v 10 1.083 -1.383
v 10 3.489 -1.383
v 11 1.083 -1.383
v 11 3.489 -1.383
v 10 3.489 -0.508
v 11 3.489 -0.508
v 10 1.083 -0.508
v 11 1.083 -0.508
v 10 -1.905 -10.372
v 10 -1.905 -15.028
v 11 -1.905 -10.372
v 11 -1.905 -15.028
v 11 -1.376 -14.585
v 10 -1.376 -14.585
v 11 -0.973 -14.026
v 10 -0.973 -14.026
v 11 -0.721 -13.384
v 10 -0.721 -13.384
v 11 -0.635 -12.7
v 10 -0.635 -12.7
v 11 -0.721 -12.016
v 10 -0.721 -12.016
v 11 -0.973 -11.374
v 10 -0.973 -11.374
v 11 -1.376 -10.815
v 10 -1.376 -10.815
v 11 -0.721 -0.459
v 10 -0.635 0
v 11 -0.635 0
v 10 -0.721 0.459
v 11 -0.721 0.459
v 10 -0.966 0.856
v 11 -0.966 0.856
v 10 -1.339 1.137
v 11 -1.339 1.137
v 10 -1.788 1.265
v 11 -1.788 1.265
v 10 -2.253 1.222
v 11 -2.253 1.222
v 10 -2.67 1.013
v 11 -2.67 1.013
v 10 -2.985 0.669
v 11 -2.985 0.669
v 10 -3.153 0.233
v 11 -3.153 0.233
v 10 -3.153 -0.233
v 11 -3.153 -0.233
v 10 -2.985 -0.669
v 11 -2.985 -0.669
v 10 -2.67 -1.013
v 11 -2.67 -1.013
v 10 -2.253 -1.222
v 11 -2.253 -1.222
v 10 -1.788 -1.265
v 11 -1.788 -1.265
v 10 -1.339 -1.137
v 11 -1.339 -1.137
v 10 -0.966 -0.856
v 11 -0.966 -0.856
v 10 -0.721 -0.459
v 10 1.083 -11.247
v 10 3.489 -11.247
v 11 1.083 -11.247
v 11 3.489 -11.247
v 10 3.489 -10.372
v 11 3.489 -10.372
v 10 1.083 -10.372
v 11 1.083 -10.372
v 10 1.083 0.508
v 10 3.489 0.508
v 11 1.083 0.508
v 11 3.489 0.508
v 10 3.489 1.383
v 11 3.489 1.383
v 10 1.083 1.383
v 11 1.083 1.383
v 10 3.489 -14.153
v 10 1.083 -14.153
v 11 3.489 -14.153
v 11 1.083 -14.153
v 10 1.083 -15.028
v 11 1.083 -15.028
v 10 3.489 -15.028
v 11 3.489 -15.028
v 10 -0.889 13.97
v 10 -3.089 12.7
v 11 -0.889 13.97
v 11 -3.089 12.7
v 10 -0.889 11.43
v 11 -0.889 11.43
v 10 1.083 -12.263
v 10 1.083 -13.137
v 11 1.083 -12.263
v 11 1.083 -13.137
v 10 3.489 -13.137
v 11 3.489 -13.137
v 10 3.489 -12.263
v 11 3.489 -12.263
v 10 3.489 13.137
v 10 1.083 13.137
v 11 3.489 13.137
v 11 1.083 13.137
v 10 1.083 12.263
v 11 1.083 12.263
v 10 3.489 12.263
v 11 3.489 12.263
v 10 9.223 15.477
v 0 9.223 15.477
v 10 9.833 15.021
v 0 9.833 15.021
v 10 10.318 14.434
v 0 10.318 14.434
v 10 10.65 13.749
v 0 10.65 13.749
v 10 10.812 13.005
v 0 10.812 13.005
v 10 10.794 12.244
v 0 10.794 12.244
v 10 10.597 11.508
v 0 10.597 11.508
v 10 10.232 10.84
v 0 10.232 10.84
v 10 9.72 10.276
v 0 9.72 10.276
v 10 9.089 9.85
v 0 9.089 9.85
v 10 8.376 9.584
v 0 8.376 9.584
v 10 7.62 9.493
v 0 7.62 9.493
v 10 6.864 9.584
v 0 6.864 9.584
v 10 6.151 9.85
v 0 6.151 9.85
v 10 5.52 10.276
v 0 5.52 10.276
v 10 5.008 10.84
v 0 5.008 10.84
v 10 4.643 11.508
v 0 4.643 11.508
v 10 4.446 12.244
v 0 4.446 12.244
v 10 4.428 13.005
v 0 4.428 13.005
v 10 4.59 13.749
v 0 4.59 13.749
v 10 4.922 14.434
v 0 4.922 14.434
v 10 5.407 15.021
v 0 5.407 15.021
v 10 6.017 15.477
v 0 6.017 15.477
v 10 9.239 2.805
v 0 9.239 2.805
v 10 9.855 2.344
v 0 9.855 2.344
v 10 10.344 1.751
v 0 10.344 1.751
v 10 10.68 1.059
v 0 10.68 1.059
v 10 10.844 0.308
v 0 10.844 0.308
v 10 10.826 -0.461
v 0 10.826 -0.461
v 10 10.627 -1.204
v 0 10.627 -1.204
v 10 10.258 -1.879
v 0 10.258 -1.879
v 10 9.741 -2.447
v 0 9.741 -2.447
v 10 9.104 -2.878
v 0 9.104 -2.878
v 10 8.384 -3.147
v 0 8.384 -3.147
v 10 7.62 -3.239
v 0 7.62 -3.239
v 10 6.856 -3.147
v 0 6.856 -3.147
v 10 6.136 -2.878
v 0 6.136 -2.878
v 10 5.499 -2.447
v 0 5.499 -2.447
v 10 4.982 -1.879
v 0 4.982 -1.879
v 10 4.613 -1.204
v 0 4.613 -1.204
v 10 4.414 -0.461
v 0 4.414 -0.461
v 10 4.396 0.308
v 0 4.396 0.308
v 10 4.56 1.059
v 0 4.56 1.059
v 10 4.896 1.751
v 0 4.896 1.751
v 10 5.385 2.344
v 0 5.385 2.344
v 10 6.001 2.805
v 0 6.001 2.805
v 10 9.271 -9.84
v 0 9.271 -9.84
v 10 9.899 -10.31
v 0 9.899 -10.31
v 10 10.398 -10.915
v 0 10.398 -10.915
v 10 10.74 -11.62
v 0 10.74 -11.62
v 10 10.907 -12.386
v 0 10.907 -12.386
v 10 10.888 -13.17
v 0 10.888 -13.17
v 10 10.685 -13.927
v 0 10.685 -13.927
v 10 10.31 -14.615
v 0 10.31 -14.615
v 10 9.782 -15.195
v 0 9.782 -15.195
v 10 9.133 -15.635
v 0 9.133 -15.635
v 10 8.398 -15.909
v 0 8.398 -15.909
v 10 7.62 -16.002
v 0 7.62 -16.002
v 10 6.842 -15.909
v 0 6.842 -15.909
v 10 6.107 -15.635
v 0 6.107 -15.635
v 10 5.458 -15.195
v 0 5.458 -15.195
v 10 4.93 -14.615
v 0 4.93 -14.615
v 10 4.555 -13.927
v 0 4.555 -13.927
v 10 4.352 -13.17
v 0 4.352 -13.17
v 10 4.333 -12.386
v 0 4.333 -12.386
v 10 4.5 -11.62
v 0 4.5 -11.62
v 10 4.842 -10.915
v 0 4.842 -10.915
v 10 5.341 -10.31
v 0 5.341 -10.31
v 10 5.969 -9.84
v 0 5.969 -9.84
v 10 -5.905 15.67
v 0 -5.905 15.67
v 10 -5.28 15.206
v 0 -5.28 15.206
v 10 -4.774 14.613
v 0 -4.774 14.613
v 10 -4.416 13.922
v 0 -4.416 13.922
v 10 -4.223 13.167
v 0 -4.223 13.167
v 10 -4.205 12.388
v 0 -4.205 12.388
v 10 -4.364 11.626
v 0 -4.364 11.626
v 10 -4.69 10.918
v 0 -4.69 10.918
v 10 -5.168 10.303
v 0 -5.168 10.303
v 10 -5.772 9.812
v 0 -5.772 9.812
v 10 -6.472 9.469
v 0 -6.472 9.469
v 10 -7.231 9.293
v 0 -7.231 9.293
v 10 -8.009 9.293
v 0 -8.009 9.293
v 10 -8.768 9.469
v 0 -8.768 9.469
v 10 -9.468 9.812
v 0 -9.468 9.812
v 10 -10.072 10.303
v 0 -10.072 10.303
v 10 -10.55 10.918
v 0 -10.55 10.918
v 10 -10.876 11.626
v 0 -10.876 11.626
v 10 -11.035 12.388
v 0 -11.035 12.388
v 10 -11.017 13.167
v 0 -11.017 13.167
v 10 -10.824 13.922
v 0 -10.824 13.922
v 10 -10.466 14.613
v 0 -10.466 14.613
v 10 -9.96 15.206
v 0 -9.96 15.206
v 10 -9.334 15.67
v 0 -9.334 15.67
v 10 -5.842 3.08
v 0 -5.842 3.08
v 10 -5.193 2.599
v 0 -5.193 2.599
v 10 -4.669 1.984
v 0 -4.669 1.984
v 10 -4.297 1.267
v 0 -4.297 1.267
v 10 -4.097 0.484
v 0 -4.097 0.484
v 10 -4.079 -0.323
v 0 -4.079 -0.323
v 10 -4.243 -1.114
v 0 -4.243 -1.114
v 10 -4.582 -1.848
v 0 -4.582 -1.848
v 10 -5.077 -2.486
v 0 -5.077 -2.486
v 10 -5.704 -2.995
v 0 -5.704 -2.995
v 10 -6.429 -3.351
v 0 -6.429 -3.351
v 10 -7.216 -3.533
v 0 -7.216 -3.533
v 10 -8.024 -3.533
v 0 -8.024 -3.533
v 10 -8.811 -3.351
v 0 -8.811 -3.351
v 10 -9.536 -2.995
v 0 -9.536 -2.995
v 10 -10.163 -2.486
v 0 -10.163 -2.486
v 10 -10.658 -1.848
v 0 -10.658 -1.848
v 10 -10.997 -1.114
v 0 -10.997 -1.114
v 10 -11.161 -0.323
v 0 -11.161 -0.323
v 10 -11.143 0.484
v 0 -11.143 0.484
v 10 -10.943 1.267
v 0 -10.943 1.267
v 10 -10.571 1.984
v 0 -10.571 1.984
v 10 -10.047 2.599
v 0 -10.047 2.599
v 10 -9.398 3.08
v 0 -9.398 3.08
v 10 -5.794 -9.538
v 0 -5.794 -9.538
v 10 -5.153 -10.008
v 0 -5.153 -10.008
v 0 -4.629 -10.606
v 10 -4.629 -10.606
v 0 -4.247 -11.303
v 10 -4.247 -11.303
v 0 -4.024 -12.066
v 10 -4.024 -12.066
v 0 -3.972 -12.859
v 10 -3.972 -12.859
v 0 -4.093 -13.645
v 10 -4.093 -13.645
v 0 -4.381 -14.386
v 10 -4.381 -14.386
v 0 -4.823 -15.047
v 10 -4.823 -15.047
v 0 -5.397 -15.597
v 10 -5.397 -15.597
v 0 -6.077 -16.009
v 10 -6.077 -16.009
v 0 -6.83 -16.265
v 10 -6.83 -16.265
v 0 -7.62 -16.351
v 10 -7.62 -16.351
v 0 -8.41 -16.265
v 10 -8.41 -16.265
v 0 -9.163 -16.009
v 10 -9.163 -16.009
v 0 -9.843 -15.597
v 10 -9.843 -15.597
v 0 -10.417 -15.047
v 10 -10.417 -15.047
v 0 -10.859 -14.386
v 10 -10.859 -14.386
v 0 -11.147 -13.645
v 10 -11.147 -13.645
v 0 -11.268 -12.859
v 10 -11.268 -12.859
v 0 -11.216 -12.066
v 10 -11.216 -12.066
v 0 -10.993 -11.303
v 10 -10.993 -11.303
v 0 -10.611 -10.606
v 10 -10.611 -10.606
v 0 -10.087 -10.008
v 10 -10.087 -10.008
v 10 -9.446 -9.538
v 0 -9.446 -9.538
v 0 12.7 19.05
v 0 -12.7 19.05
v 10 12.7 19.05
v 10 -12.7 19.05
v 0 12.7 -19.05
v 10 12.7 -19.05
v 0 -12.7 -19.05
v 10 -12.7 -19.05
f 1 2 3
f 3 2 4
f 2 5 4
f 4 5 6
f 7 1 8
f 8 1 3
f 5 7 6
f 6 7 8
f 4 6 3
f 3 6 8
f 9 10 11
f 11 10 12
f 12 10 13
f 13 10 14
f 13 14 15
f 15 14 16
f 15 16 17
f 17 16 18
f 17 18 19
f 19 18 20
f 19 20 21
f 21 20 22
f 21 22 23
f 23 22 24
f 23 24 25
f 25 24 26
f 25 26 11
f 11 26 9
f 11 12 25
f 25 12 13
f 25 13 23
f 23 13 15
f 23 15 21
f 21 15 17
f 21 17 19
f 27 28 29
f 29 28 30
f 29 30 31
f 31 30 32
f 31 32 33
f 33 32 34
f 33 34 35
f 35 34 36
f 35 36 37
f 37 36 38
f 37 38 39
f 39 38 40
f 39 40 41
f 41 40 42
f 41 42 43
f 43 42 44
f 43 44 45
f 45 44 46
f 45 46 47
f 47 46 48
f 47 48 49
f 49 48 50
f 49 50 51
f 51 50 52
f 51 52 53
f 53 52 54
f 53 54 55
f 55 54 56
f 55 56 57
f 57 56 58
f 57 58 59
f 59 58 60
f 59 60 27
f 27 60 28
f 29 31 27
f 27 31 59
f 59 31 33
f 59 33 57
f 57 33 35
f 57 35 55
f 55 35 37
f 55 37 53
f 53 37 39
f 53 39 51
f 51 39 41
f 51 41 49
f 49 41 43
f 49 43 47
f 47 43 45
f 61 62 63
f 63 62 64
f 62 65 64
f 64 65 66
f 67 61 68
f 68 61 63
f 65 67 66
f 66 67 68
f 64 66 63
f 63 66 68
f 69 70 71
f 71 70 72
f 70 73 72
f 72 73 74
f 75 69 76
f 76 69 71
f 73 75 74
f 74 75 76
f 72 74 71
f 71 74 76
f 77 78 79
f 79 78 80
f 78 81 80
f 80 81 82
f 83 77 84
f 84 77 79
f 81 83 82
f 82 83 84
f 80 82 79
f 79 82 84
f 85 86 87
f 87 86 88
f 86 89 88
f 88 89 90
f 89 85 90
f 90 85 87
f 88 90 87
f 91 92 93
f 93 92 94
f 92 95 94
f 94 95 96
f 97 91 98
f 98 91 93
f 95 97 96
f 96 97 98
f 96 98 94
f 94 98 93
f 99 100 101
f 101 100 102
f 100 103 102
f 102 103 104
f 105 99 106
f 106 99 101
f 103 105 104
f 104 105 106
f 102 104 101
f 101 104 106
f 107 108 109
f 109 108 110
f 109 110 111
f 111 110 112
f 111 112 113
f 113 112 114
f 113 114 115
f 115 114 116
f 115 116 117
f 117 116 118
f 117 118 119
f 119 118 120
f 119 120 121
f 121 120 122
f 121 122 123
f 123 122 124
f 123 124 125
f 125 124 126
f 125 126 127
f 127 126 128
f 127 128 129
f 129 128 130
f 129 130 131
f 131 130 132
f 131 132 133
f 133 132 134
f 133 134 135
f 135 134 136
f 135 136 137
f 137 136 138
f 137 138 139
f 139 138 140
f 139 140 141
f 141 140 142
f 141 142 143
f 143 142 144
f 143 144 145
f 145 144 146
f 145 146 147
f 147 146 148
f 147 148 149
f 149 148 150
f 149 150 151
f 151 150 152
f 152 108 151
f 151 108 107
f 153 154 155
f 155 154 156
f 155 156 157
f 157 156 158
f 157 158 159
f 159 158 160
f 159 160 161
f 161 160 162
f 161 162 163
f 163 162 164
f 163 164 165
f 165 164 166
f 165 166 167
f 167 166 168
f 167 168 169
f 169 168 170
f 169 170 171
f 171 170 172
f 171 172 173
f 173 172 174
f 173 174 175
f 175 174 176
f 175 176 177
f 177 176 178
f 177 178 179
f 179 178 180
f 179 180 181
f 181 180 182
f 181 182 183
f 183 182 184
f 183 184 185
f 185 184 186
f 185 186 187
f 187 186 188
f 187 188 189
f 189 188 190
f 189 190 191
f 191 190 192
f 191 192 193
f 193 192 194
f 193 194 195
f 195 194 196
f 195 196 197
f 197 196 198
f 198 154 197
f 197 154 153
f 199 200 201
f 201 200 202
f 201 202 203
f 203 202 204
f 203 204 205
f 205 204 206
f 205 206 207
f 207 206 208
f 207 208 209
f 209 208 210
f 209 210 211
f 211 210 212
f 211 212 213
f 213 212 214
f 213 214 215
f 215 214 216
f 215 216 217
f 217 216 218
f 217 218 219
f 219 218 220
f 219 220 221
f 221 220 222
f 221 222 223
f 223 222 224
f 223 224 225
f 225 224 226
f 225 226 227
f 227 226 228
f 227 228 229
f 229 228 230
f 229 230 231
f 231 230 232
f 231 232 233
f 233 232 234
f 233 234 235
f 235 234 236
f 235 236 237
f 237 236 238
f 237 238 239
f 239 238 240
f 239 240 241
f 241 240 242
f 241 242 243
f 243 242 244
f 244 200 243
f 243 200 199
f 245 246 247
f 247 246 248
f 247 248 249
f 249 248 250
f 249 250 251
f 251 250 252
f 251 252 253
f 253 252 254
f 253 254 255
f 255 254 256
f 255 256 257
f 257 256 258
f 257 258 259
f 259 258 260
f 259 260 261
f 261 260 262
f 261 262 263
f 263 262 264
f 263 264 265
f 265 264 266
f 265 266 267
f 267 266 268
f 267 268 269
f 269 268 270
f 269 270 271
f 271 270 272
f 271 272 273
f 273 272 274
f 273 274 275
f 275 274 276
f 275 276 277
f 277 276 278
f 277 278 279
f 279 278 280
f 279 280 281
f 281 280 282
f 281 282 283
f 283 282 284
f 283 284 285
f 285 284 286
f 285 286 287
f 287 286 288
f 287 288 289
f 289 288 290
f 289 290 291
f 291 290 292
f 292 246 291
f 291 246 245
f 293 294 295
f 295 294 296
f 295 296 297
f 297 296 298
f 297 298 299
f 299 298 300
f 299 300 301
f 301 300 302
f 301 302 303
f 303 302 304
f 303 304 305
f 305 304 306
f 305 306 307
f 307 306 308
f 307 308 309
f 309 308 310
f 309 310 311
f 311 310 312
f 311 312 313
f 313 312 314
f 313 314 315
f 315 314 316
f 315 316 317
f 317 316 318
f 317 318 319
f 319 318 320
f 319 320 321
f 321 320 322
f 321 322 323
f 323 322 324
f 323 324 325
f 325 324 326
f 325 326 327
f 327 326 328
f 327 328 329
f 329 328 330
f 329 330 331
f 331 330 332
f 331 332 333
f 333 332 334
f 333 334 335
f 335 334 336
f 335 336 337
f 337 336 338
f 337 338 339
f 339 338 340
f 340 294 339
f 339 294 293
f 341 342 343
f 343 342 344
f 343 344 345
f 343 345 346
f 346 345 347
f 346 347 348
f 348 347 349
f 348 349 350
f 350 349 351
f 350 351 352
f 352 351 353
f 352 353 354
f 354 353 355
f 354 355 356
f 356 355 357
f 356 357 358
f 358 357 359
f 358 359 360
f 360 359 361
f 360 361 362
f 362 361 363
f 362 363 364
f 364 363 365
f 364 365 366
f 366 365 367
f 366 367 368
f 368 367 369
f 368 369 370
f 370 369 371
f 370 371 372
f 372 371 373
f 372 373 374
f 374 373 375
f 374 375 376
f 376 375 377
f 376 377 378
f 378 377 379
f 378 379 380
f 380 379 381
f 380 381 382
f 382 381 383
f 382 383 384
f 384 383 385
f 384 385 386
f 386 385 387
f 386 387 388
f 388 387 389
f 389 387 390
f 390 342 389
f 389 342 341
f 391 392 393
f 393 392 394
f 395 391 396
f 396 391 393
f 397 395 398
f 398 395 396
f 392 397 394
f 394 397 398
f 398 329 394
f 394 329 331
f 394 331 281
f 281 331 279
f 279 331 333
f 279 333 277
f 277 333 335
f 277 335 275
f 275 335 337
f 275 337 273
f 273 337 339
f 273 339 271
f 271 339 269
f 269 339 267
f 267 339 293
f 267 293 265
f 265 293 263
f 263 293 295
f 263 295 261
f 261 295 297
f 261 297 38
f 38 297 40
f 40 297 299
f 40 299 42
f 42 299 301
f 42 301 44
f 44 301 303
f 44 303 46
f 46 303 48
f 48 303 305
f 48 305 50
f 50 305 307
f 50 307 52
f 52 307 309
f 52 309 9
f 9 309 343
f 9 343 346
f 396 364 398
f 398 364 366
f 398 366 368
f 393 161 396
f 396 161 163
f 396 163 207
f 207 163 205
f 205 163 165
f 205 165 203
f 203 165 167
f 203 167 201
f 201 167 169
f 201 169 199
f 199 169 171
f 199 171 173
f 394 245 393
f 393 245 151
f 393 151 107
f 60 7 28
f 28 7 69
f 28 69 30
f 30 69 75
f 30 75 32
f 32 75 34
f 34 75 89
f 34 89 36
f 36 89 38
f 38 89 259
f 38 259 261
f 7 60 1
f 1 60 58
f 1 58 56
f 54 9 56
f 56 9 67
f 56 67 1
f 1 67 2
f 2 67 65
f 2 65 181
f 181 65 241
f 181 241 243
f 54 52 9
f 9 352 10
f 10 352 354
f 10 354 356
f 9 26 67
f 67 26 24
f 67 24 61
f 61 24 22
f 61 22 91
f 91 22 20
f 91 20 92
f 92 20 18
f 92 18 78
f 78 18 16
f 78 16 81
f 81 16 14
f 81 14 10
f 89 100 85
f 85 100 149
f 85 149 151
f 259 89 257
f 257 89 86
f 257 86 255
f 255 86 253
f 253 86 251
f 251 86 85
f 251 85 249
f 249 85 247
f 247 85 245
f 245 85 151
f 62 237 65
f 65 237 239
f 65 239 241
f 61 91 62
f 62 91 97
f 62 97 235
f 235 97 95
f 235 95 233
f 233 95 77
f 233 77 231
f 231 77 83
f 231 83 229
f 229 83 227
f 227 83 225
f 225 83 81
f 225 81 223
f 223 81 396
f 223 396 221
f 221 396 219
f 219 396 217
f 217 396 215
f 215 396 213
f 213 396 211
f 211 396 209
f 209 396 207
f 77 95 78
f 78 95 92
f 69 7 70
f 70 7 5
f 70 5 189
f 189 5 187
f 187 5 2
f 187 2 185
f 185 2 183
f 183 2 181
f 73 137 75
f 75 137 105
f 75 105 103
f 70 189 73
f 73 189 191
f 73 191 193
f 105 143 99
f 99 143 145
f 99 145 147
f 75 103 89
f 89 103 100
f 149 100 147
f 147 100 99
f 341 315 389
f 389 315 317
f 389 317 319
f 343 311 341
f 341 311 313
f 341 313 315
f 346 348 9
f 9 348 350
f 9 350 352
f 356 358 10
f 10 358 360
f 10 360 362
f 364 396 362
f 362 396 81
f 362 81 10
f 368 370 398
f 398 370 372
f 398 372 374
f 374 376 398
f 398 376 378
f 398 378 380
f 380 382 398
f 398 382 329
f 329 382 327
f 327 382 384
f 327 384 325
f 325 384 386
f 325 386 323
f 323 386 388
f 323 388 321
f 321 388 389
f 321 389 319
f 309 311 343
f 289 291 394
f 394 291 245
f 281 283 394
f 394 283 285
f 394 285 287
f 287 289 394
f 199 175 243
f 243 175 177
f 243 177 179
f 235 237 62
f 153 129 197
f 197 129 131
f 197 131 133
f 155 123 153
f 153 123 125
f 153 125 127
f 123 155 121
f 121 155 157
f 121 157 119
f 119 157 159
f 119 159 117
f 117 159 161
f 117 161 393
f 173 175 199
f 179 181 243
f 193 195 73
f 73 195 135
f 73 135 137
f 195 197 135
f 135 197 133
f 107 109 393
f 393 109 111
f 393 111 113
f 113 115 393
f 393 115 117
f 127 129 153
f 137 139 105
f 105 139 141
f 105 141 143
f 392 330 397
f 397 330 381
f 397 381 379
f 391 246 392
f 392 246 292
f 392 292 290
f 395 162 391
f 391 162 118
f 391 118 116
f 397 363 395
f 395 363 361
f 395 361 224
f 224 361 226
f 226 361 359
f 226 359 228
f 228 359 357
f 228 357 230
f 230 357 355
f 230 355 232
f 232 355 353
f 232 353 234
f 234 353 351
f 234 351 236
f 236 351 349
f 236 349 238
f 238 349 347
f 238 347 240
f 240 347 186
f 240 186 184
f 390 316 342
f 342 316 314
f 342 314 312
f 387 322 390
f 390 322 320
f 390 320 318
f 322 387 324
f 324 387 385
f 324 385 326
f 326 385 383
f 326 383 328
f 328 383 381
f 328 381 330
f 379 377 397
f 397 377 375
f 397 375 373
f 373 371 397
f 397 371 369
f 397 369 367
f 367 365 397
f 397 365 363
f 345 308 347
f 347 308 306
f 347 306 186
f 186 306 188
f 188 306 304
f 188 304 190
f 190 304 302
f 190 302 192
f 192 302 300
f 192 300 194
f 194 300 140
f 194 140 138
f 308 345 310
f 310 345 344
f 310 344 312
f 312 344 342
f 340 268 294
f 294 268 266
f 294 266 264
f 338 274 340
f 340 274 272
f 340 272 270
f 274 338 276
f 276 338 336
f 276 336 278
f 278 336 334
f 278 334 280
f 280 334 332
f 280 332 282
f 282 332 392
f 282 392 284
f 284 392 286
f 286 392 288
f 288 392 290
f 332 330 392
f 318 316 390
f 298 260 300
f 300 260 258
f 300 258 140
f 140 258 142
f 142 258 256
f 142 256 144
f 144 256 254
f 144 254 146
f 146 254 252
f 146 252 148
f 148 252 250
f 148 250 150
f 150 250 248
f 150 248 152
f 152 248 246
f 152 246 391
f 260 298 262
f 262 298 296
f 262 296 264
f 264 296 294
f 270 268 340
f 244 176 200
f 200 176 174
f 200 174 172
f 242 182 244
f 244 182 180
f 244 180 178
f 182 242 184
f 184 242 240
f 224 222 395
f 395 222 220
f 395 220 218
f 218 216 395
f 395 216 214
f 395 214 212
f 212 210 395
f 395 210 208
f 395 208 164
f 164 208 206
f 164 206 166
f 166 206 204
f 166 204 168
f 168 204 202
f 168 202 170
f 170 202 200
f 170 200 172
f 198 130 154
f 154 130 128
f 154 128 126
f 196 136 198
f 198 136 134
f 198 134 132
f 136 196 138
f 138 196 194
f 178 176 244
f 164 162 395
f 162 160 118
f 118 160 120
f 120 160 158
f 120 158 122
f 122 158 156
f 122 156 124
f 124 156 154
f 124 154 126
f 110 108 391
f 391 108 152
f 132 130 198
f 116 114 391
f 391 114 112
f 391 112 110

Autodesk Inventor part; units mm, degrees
ref_plane "YZ Plane" through (0, 0, 0) normal (1, 0, 0) x (0, 1, 0)
ref_plane "XZ Plane" through (0, 0, 0) normal (0, 1, 0) x (-1, 0, 0)
ref_plane "XY Plane" through (0, 0, 0) normal (0, 0, 1) x (1, 0, 0)
sketch "Sketch1" plane through (0, 0, 0) normal (1, 0, 0) x (0, 1, 0)
  line L0 (12.7, 19.05) -> (-12.7, 19.05)
  line L1 (-12.7, 19.05) -> (-12.7, -19.05)
  line L2 (-12.7, -19.05) -> (12.7, -19.05)
  line L3 (12.7, -19.05) -> (12.7, 19.05)
  line L4 (12.7, 19.05) -> (-12.7, -19.05) construction
  line L5 (-12.7, 19.05) -> (12.7, -19.05) construction
  arc A0 (6.0166, 15.4771) -> (9.2234, 15.4771) centre (7.62, 12.7) ccw
  line L6 (6.0166, 15.4771) -> (9.2234, 15.4771)
  arc A1 (6.0008, 2.8046) -> (9.2393, 2.8046) centre (7.62, 0) ccw
  line L7 (6.0008, 2.8046) -> (9.2393, 2.8046)
  arc A2 (5.969, -9.8404) -> (9.271, -9.8404) centre (7.62, -12.7) ccw
  line L8 (5.969, -9.8404) -> (9.271, -9.8404)
  arc A3 (-9.3345, 15.6696) -> (-5.9055, 15.6696) centre (-7.62, 12.7) ccw
  line L9 (-9.3345, 15.6696) -> (-5.9055, 15.6696)
  arc A4 (-9.398, 3.0796) -> (-5.842, 3.0796) centre (-7.62, 0) ccw
  line L10 (-9.398, 3.0796) -> (-5.842, 3.0796)
  arc A5 (-9.4456, -9.5379) -> (-5.7944, -9.5379) centre (-7.62, -12.7) ccw
  line L11 (-9.4456, -9.5379) -> (-5.7944, -9.5379)
  line L12 (3.4886, 13.1373) -> (1.0834, 13.1373)
  line L13 (1.0834, 13.1373) -> (1.0834, 12.2627)
  line L14 (1.0834, 12.2627) -> (3.4886, 12.2627)
  line L15 (3.4886, 12.2627) -> (3.4886, 13.1373)
  line L16 (3.4886, 13.1373) -> (1.0834, 12.2627) construction
  line L17 (1.0834, 13.1373) -> (3.4886, 12.2627) construction
  line L18 (12.7, 0) -> (-12.7, 0) construction
  line L19 (3.4886, 1.3826) -> (1.0834, 1.3826)
  line L20 (1.0834, 1.3826) -> (1.0834, 0.508)
  line L21 (1.0834, 0.508) -> (3.4886, 0.508)
  line L22 (3.4886, 0.508) -> (3.4886, 1.3826)
  line L23 (3.4886, 1.3826) -> (1.0834, 0.508) construction
  line L24 (1.0834, 1.3826) -> (3.4886, 0.508) construction
  line L25 (3.4886, -0.508) -> (1.0834, -0.508)
  line L26 (1.0834, -0.508) -> (1.0834, -1.3826)
  line L27 (1.0834, -1.3826) -> (3.4886, -1.3826)
  line L28 (3.4886, -1.3826) -> (3.4886, -0.508)
  line L29 (3.4886, -0.508) -> (1.0834, -1.3826) construction
  line L30 (1.0834, -0.508) -> (3.4886, -1.3826) construction
  line L31 (1.0834, -13.1373) -> (3.4886, -13.1373)
  line L32 (3.4886, -12.2627) -> (1.0834, -12.2627)
  line L33 (1.0834, -12.2627) -> (1.0834, -13.1373)
  line L34 (3.4886, -13.1373) -> (3.4886, -12.2627)
  line L35 (3.4886, -12.2627) -> (1.0834, -13.1373) construction
  line L36 (1.0834, -12.2627) -> (3.4886, -13.1373) construction
  line L37 (1.0834, -15.0279) -> (3.4886, -15.0279)
  line L38 (3.4886, -14.1533) -> (1.0834, -14.1533)
  line L39 (1.0834, -14.1533) -> (1.0834, -15.0279)
  line L40 (3.4886, -15.0279) -> (3.4886, -14.1533)
  line L41 (3.4886, -14.1533) -> (1.0834, -15.0279) construction
  line L42 (1.0834, -14.1533) -> (3.4886, -15.0279) construction
  line L43 (3.4886, -10.3721) -> (1.0834, -10.3721)
  line L44 (1.0834, -10.3721) -> (1.0834, -11.2467)
  line L45 (1.0834, -11.2467) -> (3.4886, -11.2467)
  line L46 (3.4886, -11.2467) -> (3.4886, -10.3721)
  line L47 (3.4886, -10.3721) -> (1.0834, -11.2467) construction
  line L48 (1.0834, -10.3721) -> (3.4886, -11.2467) construction
  line L49 (-0.889, 13.97) -> (-0.889, 11.43)
  line L50 (-0.889, 11.43) -> (-3.0887, 12.7)
  line L51 (-3.0887, 12.7) -> (-0.889, 13.97)
  circle A6 centre (-1.905, 0) radius 1.27
  arc A7 (-1.905, -15.0279) -> (-1.905, -10.3721) centre (-3.4035, -12.7) ccw
  line L52 (-1.905, -10.3721) -> (-1.905, -15.0279)
  point P0 (0, 0)
  point P1 (2.286, 12.7)
  point P2 (0, 19.05)
  point P3 (2.286, 0.9453)
  point P4 (2.286, -0.9453)
  point P5 (2.286, -12.7)
  point P6 (2.286, -14.5906)
  point P7 (2.286, -10.8094)
  point P8 (2.286, -12.2627)
  point P9 (2.286, -11.2467)
  point P10 (-0.889, 12.7)
  point P11 (0, 0)
  dimension "d0" = 6.4135
  dimension "d1" = 3.2067
  dimension "d2" = 6.477
  dimension "d3" = 3.2385
  dimension "d4" = 6.604
  dimension "d5" = 3.302
  dimension "d6" = 6.858
  dimension "d7" = 3.429
  dimension "d8" = 7.112
  dimension "d9" = 3.556
  dimension "d10" = 7.3025
  dimension "d11" = 3.6513
  dimension "d12" = 38.1
  dimension "d13" = 6.35
  dimension "d14" = 6.35
  dimension "d15" = 5.08
  dimension "d16" = 25.4
  dimension "d17" = 5.08
  dimension "d18" = 0.8746
  dimension "d19" = 2.4052
  dimension "d20" = 2.286
  dimension "d21" = 0.8746
  dimension "d22" = 2.4052
  dimension "d23" = 0.8746
  dimension "d24" = 2.4052
  dimension "d25" = 0.508
  dimension "d26" = 0.508
  dimension "d27" = 0.8746
  dimension "d28" = 2.4052
  dimension "d29" = 0.8746
  dimension "d30" = 2.4052
  dimension "d31" = 0.8746
  dimension "d32" = 2.4052
  dimension "d33" = 1.016
  dimension "d35" = 1.016
  dimension "d36" = 2.54
  dimension "d38" = 2.54
  dimension "d39" = 2.54
  dimension "d40" = 0.889
  dimension "d41" = 2.54
  dimension "d42" = 1.905
  dimension "d43" = 4.6558
  dimension "d44" = 2.7685
  dimension "d45" = 5.6895
  dimension "d46" = 6.35
extrude "Extrusion1" add sketch "Sketch1" along normal blind 10
extrude "Extrusion2" add sketch "Sketch1" along normal blind 11 contours L15 L14 L13 L12 | L22 L21 L20 L19 | L28 L27 L26 L25 | L33 L32 L34 L31 | L39 L38 L40 L37 | L46 L45 L44 L43 | L49 L50 L51 | A6 | L52 A7
equation "\"d38\" = d36"
equation "\"d39\" = d36"
properties part number "shaft hole tester"
